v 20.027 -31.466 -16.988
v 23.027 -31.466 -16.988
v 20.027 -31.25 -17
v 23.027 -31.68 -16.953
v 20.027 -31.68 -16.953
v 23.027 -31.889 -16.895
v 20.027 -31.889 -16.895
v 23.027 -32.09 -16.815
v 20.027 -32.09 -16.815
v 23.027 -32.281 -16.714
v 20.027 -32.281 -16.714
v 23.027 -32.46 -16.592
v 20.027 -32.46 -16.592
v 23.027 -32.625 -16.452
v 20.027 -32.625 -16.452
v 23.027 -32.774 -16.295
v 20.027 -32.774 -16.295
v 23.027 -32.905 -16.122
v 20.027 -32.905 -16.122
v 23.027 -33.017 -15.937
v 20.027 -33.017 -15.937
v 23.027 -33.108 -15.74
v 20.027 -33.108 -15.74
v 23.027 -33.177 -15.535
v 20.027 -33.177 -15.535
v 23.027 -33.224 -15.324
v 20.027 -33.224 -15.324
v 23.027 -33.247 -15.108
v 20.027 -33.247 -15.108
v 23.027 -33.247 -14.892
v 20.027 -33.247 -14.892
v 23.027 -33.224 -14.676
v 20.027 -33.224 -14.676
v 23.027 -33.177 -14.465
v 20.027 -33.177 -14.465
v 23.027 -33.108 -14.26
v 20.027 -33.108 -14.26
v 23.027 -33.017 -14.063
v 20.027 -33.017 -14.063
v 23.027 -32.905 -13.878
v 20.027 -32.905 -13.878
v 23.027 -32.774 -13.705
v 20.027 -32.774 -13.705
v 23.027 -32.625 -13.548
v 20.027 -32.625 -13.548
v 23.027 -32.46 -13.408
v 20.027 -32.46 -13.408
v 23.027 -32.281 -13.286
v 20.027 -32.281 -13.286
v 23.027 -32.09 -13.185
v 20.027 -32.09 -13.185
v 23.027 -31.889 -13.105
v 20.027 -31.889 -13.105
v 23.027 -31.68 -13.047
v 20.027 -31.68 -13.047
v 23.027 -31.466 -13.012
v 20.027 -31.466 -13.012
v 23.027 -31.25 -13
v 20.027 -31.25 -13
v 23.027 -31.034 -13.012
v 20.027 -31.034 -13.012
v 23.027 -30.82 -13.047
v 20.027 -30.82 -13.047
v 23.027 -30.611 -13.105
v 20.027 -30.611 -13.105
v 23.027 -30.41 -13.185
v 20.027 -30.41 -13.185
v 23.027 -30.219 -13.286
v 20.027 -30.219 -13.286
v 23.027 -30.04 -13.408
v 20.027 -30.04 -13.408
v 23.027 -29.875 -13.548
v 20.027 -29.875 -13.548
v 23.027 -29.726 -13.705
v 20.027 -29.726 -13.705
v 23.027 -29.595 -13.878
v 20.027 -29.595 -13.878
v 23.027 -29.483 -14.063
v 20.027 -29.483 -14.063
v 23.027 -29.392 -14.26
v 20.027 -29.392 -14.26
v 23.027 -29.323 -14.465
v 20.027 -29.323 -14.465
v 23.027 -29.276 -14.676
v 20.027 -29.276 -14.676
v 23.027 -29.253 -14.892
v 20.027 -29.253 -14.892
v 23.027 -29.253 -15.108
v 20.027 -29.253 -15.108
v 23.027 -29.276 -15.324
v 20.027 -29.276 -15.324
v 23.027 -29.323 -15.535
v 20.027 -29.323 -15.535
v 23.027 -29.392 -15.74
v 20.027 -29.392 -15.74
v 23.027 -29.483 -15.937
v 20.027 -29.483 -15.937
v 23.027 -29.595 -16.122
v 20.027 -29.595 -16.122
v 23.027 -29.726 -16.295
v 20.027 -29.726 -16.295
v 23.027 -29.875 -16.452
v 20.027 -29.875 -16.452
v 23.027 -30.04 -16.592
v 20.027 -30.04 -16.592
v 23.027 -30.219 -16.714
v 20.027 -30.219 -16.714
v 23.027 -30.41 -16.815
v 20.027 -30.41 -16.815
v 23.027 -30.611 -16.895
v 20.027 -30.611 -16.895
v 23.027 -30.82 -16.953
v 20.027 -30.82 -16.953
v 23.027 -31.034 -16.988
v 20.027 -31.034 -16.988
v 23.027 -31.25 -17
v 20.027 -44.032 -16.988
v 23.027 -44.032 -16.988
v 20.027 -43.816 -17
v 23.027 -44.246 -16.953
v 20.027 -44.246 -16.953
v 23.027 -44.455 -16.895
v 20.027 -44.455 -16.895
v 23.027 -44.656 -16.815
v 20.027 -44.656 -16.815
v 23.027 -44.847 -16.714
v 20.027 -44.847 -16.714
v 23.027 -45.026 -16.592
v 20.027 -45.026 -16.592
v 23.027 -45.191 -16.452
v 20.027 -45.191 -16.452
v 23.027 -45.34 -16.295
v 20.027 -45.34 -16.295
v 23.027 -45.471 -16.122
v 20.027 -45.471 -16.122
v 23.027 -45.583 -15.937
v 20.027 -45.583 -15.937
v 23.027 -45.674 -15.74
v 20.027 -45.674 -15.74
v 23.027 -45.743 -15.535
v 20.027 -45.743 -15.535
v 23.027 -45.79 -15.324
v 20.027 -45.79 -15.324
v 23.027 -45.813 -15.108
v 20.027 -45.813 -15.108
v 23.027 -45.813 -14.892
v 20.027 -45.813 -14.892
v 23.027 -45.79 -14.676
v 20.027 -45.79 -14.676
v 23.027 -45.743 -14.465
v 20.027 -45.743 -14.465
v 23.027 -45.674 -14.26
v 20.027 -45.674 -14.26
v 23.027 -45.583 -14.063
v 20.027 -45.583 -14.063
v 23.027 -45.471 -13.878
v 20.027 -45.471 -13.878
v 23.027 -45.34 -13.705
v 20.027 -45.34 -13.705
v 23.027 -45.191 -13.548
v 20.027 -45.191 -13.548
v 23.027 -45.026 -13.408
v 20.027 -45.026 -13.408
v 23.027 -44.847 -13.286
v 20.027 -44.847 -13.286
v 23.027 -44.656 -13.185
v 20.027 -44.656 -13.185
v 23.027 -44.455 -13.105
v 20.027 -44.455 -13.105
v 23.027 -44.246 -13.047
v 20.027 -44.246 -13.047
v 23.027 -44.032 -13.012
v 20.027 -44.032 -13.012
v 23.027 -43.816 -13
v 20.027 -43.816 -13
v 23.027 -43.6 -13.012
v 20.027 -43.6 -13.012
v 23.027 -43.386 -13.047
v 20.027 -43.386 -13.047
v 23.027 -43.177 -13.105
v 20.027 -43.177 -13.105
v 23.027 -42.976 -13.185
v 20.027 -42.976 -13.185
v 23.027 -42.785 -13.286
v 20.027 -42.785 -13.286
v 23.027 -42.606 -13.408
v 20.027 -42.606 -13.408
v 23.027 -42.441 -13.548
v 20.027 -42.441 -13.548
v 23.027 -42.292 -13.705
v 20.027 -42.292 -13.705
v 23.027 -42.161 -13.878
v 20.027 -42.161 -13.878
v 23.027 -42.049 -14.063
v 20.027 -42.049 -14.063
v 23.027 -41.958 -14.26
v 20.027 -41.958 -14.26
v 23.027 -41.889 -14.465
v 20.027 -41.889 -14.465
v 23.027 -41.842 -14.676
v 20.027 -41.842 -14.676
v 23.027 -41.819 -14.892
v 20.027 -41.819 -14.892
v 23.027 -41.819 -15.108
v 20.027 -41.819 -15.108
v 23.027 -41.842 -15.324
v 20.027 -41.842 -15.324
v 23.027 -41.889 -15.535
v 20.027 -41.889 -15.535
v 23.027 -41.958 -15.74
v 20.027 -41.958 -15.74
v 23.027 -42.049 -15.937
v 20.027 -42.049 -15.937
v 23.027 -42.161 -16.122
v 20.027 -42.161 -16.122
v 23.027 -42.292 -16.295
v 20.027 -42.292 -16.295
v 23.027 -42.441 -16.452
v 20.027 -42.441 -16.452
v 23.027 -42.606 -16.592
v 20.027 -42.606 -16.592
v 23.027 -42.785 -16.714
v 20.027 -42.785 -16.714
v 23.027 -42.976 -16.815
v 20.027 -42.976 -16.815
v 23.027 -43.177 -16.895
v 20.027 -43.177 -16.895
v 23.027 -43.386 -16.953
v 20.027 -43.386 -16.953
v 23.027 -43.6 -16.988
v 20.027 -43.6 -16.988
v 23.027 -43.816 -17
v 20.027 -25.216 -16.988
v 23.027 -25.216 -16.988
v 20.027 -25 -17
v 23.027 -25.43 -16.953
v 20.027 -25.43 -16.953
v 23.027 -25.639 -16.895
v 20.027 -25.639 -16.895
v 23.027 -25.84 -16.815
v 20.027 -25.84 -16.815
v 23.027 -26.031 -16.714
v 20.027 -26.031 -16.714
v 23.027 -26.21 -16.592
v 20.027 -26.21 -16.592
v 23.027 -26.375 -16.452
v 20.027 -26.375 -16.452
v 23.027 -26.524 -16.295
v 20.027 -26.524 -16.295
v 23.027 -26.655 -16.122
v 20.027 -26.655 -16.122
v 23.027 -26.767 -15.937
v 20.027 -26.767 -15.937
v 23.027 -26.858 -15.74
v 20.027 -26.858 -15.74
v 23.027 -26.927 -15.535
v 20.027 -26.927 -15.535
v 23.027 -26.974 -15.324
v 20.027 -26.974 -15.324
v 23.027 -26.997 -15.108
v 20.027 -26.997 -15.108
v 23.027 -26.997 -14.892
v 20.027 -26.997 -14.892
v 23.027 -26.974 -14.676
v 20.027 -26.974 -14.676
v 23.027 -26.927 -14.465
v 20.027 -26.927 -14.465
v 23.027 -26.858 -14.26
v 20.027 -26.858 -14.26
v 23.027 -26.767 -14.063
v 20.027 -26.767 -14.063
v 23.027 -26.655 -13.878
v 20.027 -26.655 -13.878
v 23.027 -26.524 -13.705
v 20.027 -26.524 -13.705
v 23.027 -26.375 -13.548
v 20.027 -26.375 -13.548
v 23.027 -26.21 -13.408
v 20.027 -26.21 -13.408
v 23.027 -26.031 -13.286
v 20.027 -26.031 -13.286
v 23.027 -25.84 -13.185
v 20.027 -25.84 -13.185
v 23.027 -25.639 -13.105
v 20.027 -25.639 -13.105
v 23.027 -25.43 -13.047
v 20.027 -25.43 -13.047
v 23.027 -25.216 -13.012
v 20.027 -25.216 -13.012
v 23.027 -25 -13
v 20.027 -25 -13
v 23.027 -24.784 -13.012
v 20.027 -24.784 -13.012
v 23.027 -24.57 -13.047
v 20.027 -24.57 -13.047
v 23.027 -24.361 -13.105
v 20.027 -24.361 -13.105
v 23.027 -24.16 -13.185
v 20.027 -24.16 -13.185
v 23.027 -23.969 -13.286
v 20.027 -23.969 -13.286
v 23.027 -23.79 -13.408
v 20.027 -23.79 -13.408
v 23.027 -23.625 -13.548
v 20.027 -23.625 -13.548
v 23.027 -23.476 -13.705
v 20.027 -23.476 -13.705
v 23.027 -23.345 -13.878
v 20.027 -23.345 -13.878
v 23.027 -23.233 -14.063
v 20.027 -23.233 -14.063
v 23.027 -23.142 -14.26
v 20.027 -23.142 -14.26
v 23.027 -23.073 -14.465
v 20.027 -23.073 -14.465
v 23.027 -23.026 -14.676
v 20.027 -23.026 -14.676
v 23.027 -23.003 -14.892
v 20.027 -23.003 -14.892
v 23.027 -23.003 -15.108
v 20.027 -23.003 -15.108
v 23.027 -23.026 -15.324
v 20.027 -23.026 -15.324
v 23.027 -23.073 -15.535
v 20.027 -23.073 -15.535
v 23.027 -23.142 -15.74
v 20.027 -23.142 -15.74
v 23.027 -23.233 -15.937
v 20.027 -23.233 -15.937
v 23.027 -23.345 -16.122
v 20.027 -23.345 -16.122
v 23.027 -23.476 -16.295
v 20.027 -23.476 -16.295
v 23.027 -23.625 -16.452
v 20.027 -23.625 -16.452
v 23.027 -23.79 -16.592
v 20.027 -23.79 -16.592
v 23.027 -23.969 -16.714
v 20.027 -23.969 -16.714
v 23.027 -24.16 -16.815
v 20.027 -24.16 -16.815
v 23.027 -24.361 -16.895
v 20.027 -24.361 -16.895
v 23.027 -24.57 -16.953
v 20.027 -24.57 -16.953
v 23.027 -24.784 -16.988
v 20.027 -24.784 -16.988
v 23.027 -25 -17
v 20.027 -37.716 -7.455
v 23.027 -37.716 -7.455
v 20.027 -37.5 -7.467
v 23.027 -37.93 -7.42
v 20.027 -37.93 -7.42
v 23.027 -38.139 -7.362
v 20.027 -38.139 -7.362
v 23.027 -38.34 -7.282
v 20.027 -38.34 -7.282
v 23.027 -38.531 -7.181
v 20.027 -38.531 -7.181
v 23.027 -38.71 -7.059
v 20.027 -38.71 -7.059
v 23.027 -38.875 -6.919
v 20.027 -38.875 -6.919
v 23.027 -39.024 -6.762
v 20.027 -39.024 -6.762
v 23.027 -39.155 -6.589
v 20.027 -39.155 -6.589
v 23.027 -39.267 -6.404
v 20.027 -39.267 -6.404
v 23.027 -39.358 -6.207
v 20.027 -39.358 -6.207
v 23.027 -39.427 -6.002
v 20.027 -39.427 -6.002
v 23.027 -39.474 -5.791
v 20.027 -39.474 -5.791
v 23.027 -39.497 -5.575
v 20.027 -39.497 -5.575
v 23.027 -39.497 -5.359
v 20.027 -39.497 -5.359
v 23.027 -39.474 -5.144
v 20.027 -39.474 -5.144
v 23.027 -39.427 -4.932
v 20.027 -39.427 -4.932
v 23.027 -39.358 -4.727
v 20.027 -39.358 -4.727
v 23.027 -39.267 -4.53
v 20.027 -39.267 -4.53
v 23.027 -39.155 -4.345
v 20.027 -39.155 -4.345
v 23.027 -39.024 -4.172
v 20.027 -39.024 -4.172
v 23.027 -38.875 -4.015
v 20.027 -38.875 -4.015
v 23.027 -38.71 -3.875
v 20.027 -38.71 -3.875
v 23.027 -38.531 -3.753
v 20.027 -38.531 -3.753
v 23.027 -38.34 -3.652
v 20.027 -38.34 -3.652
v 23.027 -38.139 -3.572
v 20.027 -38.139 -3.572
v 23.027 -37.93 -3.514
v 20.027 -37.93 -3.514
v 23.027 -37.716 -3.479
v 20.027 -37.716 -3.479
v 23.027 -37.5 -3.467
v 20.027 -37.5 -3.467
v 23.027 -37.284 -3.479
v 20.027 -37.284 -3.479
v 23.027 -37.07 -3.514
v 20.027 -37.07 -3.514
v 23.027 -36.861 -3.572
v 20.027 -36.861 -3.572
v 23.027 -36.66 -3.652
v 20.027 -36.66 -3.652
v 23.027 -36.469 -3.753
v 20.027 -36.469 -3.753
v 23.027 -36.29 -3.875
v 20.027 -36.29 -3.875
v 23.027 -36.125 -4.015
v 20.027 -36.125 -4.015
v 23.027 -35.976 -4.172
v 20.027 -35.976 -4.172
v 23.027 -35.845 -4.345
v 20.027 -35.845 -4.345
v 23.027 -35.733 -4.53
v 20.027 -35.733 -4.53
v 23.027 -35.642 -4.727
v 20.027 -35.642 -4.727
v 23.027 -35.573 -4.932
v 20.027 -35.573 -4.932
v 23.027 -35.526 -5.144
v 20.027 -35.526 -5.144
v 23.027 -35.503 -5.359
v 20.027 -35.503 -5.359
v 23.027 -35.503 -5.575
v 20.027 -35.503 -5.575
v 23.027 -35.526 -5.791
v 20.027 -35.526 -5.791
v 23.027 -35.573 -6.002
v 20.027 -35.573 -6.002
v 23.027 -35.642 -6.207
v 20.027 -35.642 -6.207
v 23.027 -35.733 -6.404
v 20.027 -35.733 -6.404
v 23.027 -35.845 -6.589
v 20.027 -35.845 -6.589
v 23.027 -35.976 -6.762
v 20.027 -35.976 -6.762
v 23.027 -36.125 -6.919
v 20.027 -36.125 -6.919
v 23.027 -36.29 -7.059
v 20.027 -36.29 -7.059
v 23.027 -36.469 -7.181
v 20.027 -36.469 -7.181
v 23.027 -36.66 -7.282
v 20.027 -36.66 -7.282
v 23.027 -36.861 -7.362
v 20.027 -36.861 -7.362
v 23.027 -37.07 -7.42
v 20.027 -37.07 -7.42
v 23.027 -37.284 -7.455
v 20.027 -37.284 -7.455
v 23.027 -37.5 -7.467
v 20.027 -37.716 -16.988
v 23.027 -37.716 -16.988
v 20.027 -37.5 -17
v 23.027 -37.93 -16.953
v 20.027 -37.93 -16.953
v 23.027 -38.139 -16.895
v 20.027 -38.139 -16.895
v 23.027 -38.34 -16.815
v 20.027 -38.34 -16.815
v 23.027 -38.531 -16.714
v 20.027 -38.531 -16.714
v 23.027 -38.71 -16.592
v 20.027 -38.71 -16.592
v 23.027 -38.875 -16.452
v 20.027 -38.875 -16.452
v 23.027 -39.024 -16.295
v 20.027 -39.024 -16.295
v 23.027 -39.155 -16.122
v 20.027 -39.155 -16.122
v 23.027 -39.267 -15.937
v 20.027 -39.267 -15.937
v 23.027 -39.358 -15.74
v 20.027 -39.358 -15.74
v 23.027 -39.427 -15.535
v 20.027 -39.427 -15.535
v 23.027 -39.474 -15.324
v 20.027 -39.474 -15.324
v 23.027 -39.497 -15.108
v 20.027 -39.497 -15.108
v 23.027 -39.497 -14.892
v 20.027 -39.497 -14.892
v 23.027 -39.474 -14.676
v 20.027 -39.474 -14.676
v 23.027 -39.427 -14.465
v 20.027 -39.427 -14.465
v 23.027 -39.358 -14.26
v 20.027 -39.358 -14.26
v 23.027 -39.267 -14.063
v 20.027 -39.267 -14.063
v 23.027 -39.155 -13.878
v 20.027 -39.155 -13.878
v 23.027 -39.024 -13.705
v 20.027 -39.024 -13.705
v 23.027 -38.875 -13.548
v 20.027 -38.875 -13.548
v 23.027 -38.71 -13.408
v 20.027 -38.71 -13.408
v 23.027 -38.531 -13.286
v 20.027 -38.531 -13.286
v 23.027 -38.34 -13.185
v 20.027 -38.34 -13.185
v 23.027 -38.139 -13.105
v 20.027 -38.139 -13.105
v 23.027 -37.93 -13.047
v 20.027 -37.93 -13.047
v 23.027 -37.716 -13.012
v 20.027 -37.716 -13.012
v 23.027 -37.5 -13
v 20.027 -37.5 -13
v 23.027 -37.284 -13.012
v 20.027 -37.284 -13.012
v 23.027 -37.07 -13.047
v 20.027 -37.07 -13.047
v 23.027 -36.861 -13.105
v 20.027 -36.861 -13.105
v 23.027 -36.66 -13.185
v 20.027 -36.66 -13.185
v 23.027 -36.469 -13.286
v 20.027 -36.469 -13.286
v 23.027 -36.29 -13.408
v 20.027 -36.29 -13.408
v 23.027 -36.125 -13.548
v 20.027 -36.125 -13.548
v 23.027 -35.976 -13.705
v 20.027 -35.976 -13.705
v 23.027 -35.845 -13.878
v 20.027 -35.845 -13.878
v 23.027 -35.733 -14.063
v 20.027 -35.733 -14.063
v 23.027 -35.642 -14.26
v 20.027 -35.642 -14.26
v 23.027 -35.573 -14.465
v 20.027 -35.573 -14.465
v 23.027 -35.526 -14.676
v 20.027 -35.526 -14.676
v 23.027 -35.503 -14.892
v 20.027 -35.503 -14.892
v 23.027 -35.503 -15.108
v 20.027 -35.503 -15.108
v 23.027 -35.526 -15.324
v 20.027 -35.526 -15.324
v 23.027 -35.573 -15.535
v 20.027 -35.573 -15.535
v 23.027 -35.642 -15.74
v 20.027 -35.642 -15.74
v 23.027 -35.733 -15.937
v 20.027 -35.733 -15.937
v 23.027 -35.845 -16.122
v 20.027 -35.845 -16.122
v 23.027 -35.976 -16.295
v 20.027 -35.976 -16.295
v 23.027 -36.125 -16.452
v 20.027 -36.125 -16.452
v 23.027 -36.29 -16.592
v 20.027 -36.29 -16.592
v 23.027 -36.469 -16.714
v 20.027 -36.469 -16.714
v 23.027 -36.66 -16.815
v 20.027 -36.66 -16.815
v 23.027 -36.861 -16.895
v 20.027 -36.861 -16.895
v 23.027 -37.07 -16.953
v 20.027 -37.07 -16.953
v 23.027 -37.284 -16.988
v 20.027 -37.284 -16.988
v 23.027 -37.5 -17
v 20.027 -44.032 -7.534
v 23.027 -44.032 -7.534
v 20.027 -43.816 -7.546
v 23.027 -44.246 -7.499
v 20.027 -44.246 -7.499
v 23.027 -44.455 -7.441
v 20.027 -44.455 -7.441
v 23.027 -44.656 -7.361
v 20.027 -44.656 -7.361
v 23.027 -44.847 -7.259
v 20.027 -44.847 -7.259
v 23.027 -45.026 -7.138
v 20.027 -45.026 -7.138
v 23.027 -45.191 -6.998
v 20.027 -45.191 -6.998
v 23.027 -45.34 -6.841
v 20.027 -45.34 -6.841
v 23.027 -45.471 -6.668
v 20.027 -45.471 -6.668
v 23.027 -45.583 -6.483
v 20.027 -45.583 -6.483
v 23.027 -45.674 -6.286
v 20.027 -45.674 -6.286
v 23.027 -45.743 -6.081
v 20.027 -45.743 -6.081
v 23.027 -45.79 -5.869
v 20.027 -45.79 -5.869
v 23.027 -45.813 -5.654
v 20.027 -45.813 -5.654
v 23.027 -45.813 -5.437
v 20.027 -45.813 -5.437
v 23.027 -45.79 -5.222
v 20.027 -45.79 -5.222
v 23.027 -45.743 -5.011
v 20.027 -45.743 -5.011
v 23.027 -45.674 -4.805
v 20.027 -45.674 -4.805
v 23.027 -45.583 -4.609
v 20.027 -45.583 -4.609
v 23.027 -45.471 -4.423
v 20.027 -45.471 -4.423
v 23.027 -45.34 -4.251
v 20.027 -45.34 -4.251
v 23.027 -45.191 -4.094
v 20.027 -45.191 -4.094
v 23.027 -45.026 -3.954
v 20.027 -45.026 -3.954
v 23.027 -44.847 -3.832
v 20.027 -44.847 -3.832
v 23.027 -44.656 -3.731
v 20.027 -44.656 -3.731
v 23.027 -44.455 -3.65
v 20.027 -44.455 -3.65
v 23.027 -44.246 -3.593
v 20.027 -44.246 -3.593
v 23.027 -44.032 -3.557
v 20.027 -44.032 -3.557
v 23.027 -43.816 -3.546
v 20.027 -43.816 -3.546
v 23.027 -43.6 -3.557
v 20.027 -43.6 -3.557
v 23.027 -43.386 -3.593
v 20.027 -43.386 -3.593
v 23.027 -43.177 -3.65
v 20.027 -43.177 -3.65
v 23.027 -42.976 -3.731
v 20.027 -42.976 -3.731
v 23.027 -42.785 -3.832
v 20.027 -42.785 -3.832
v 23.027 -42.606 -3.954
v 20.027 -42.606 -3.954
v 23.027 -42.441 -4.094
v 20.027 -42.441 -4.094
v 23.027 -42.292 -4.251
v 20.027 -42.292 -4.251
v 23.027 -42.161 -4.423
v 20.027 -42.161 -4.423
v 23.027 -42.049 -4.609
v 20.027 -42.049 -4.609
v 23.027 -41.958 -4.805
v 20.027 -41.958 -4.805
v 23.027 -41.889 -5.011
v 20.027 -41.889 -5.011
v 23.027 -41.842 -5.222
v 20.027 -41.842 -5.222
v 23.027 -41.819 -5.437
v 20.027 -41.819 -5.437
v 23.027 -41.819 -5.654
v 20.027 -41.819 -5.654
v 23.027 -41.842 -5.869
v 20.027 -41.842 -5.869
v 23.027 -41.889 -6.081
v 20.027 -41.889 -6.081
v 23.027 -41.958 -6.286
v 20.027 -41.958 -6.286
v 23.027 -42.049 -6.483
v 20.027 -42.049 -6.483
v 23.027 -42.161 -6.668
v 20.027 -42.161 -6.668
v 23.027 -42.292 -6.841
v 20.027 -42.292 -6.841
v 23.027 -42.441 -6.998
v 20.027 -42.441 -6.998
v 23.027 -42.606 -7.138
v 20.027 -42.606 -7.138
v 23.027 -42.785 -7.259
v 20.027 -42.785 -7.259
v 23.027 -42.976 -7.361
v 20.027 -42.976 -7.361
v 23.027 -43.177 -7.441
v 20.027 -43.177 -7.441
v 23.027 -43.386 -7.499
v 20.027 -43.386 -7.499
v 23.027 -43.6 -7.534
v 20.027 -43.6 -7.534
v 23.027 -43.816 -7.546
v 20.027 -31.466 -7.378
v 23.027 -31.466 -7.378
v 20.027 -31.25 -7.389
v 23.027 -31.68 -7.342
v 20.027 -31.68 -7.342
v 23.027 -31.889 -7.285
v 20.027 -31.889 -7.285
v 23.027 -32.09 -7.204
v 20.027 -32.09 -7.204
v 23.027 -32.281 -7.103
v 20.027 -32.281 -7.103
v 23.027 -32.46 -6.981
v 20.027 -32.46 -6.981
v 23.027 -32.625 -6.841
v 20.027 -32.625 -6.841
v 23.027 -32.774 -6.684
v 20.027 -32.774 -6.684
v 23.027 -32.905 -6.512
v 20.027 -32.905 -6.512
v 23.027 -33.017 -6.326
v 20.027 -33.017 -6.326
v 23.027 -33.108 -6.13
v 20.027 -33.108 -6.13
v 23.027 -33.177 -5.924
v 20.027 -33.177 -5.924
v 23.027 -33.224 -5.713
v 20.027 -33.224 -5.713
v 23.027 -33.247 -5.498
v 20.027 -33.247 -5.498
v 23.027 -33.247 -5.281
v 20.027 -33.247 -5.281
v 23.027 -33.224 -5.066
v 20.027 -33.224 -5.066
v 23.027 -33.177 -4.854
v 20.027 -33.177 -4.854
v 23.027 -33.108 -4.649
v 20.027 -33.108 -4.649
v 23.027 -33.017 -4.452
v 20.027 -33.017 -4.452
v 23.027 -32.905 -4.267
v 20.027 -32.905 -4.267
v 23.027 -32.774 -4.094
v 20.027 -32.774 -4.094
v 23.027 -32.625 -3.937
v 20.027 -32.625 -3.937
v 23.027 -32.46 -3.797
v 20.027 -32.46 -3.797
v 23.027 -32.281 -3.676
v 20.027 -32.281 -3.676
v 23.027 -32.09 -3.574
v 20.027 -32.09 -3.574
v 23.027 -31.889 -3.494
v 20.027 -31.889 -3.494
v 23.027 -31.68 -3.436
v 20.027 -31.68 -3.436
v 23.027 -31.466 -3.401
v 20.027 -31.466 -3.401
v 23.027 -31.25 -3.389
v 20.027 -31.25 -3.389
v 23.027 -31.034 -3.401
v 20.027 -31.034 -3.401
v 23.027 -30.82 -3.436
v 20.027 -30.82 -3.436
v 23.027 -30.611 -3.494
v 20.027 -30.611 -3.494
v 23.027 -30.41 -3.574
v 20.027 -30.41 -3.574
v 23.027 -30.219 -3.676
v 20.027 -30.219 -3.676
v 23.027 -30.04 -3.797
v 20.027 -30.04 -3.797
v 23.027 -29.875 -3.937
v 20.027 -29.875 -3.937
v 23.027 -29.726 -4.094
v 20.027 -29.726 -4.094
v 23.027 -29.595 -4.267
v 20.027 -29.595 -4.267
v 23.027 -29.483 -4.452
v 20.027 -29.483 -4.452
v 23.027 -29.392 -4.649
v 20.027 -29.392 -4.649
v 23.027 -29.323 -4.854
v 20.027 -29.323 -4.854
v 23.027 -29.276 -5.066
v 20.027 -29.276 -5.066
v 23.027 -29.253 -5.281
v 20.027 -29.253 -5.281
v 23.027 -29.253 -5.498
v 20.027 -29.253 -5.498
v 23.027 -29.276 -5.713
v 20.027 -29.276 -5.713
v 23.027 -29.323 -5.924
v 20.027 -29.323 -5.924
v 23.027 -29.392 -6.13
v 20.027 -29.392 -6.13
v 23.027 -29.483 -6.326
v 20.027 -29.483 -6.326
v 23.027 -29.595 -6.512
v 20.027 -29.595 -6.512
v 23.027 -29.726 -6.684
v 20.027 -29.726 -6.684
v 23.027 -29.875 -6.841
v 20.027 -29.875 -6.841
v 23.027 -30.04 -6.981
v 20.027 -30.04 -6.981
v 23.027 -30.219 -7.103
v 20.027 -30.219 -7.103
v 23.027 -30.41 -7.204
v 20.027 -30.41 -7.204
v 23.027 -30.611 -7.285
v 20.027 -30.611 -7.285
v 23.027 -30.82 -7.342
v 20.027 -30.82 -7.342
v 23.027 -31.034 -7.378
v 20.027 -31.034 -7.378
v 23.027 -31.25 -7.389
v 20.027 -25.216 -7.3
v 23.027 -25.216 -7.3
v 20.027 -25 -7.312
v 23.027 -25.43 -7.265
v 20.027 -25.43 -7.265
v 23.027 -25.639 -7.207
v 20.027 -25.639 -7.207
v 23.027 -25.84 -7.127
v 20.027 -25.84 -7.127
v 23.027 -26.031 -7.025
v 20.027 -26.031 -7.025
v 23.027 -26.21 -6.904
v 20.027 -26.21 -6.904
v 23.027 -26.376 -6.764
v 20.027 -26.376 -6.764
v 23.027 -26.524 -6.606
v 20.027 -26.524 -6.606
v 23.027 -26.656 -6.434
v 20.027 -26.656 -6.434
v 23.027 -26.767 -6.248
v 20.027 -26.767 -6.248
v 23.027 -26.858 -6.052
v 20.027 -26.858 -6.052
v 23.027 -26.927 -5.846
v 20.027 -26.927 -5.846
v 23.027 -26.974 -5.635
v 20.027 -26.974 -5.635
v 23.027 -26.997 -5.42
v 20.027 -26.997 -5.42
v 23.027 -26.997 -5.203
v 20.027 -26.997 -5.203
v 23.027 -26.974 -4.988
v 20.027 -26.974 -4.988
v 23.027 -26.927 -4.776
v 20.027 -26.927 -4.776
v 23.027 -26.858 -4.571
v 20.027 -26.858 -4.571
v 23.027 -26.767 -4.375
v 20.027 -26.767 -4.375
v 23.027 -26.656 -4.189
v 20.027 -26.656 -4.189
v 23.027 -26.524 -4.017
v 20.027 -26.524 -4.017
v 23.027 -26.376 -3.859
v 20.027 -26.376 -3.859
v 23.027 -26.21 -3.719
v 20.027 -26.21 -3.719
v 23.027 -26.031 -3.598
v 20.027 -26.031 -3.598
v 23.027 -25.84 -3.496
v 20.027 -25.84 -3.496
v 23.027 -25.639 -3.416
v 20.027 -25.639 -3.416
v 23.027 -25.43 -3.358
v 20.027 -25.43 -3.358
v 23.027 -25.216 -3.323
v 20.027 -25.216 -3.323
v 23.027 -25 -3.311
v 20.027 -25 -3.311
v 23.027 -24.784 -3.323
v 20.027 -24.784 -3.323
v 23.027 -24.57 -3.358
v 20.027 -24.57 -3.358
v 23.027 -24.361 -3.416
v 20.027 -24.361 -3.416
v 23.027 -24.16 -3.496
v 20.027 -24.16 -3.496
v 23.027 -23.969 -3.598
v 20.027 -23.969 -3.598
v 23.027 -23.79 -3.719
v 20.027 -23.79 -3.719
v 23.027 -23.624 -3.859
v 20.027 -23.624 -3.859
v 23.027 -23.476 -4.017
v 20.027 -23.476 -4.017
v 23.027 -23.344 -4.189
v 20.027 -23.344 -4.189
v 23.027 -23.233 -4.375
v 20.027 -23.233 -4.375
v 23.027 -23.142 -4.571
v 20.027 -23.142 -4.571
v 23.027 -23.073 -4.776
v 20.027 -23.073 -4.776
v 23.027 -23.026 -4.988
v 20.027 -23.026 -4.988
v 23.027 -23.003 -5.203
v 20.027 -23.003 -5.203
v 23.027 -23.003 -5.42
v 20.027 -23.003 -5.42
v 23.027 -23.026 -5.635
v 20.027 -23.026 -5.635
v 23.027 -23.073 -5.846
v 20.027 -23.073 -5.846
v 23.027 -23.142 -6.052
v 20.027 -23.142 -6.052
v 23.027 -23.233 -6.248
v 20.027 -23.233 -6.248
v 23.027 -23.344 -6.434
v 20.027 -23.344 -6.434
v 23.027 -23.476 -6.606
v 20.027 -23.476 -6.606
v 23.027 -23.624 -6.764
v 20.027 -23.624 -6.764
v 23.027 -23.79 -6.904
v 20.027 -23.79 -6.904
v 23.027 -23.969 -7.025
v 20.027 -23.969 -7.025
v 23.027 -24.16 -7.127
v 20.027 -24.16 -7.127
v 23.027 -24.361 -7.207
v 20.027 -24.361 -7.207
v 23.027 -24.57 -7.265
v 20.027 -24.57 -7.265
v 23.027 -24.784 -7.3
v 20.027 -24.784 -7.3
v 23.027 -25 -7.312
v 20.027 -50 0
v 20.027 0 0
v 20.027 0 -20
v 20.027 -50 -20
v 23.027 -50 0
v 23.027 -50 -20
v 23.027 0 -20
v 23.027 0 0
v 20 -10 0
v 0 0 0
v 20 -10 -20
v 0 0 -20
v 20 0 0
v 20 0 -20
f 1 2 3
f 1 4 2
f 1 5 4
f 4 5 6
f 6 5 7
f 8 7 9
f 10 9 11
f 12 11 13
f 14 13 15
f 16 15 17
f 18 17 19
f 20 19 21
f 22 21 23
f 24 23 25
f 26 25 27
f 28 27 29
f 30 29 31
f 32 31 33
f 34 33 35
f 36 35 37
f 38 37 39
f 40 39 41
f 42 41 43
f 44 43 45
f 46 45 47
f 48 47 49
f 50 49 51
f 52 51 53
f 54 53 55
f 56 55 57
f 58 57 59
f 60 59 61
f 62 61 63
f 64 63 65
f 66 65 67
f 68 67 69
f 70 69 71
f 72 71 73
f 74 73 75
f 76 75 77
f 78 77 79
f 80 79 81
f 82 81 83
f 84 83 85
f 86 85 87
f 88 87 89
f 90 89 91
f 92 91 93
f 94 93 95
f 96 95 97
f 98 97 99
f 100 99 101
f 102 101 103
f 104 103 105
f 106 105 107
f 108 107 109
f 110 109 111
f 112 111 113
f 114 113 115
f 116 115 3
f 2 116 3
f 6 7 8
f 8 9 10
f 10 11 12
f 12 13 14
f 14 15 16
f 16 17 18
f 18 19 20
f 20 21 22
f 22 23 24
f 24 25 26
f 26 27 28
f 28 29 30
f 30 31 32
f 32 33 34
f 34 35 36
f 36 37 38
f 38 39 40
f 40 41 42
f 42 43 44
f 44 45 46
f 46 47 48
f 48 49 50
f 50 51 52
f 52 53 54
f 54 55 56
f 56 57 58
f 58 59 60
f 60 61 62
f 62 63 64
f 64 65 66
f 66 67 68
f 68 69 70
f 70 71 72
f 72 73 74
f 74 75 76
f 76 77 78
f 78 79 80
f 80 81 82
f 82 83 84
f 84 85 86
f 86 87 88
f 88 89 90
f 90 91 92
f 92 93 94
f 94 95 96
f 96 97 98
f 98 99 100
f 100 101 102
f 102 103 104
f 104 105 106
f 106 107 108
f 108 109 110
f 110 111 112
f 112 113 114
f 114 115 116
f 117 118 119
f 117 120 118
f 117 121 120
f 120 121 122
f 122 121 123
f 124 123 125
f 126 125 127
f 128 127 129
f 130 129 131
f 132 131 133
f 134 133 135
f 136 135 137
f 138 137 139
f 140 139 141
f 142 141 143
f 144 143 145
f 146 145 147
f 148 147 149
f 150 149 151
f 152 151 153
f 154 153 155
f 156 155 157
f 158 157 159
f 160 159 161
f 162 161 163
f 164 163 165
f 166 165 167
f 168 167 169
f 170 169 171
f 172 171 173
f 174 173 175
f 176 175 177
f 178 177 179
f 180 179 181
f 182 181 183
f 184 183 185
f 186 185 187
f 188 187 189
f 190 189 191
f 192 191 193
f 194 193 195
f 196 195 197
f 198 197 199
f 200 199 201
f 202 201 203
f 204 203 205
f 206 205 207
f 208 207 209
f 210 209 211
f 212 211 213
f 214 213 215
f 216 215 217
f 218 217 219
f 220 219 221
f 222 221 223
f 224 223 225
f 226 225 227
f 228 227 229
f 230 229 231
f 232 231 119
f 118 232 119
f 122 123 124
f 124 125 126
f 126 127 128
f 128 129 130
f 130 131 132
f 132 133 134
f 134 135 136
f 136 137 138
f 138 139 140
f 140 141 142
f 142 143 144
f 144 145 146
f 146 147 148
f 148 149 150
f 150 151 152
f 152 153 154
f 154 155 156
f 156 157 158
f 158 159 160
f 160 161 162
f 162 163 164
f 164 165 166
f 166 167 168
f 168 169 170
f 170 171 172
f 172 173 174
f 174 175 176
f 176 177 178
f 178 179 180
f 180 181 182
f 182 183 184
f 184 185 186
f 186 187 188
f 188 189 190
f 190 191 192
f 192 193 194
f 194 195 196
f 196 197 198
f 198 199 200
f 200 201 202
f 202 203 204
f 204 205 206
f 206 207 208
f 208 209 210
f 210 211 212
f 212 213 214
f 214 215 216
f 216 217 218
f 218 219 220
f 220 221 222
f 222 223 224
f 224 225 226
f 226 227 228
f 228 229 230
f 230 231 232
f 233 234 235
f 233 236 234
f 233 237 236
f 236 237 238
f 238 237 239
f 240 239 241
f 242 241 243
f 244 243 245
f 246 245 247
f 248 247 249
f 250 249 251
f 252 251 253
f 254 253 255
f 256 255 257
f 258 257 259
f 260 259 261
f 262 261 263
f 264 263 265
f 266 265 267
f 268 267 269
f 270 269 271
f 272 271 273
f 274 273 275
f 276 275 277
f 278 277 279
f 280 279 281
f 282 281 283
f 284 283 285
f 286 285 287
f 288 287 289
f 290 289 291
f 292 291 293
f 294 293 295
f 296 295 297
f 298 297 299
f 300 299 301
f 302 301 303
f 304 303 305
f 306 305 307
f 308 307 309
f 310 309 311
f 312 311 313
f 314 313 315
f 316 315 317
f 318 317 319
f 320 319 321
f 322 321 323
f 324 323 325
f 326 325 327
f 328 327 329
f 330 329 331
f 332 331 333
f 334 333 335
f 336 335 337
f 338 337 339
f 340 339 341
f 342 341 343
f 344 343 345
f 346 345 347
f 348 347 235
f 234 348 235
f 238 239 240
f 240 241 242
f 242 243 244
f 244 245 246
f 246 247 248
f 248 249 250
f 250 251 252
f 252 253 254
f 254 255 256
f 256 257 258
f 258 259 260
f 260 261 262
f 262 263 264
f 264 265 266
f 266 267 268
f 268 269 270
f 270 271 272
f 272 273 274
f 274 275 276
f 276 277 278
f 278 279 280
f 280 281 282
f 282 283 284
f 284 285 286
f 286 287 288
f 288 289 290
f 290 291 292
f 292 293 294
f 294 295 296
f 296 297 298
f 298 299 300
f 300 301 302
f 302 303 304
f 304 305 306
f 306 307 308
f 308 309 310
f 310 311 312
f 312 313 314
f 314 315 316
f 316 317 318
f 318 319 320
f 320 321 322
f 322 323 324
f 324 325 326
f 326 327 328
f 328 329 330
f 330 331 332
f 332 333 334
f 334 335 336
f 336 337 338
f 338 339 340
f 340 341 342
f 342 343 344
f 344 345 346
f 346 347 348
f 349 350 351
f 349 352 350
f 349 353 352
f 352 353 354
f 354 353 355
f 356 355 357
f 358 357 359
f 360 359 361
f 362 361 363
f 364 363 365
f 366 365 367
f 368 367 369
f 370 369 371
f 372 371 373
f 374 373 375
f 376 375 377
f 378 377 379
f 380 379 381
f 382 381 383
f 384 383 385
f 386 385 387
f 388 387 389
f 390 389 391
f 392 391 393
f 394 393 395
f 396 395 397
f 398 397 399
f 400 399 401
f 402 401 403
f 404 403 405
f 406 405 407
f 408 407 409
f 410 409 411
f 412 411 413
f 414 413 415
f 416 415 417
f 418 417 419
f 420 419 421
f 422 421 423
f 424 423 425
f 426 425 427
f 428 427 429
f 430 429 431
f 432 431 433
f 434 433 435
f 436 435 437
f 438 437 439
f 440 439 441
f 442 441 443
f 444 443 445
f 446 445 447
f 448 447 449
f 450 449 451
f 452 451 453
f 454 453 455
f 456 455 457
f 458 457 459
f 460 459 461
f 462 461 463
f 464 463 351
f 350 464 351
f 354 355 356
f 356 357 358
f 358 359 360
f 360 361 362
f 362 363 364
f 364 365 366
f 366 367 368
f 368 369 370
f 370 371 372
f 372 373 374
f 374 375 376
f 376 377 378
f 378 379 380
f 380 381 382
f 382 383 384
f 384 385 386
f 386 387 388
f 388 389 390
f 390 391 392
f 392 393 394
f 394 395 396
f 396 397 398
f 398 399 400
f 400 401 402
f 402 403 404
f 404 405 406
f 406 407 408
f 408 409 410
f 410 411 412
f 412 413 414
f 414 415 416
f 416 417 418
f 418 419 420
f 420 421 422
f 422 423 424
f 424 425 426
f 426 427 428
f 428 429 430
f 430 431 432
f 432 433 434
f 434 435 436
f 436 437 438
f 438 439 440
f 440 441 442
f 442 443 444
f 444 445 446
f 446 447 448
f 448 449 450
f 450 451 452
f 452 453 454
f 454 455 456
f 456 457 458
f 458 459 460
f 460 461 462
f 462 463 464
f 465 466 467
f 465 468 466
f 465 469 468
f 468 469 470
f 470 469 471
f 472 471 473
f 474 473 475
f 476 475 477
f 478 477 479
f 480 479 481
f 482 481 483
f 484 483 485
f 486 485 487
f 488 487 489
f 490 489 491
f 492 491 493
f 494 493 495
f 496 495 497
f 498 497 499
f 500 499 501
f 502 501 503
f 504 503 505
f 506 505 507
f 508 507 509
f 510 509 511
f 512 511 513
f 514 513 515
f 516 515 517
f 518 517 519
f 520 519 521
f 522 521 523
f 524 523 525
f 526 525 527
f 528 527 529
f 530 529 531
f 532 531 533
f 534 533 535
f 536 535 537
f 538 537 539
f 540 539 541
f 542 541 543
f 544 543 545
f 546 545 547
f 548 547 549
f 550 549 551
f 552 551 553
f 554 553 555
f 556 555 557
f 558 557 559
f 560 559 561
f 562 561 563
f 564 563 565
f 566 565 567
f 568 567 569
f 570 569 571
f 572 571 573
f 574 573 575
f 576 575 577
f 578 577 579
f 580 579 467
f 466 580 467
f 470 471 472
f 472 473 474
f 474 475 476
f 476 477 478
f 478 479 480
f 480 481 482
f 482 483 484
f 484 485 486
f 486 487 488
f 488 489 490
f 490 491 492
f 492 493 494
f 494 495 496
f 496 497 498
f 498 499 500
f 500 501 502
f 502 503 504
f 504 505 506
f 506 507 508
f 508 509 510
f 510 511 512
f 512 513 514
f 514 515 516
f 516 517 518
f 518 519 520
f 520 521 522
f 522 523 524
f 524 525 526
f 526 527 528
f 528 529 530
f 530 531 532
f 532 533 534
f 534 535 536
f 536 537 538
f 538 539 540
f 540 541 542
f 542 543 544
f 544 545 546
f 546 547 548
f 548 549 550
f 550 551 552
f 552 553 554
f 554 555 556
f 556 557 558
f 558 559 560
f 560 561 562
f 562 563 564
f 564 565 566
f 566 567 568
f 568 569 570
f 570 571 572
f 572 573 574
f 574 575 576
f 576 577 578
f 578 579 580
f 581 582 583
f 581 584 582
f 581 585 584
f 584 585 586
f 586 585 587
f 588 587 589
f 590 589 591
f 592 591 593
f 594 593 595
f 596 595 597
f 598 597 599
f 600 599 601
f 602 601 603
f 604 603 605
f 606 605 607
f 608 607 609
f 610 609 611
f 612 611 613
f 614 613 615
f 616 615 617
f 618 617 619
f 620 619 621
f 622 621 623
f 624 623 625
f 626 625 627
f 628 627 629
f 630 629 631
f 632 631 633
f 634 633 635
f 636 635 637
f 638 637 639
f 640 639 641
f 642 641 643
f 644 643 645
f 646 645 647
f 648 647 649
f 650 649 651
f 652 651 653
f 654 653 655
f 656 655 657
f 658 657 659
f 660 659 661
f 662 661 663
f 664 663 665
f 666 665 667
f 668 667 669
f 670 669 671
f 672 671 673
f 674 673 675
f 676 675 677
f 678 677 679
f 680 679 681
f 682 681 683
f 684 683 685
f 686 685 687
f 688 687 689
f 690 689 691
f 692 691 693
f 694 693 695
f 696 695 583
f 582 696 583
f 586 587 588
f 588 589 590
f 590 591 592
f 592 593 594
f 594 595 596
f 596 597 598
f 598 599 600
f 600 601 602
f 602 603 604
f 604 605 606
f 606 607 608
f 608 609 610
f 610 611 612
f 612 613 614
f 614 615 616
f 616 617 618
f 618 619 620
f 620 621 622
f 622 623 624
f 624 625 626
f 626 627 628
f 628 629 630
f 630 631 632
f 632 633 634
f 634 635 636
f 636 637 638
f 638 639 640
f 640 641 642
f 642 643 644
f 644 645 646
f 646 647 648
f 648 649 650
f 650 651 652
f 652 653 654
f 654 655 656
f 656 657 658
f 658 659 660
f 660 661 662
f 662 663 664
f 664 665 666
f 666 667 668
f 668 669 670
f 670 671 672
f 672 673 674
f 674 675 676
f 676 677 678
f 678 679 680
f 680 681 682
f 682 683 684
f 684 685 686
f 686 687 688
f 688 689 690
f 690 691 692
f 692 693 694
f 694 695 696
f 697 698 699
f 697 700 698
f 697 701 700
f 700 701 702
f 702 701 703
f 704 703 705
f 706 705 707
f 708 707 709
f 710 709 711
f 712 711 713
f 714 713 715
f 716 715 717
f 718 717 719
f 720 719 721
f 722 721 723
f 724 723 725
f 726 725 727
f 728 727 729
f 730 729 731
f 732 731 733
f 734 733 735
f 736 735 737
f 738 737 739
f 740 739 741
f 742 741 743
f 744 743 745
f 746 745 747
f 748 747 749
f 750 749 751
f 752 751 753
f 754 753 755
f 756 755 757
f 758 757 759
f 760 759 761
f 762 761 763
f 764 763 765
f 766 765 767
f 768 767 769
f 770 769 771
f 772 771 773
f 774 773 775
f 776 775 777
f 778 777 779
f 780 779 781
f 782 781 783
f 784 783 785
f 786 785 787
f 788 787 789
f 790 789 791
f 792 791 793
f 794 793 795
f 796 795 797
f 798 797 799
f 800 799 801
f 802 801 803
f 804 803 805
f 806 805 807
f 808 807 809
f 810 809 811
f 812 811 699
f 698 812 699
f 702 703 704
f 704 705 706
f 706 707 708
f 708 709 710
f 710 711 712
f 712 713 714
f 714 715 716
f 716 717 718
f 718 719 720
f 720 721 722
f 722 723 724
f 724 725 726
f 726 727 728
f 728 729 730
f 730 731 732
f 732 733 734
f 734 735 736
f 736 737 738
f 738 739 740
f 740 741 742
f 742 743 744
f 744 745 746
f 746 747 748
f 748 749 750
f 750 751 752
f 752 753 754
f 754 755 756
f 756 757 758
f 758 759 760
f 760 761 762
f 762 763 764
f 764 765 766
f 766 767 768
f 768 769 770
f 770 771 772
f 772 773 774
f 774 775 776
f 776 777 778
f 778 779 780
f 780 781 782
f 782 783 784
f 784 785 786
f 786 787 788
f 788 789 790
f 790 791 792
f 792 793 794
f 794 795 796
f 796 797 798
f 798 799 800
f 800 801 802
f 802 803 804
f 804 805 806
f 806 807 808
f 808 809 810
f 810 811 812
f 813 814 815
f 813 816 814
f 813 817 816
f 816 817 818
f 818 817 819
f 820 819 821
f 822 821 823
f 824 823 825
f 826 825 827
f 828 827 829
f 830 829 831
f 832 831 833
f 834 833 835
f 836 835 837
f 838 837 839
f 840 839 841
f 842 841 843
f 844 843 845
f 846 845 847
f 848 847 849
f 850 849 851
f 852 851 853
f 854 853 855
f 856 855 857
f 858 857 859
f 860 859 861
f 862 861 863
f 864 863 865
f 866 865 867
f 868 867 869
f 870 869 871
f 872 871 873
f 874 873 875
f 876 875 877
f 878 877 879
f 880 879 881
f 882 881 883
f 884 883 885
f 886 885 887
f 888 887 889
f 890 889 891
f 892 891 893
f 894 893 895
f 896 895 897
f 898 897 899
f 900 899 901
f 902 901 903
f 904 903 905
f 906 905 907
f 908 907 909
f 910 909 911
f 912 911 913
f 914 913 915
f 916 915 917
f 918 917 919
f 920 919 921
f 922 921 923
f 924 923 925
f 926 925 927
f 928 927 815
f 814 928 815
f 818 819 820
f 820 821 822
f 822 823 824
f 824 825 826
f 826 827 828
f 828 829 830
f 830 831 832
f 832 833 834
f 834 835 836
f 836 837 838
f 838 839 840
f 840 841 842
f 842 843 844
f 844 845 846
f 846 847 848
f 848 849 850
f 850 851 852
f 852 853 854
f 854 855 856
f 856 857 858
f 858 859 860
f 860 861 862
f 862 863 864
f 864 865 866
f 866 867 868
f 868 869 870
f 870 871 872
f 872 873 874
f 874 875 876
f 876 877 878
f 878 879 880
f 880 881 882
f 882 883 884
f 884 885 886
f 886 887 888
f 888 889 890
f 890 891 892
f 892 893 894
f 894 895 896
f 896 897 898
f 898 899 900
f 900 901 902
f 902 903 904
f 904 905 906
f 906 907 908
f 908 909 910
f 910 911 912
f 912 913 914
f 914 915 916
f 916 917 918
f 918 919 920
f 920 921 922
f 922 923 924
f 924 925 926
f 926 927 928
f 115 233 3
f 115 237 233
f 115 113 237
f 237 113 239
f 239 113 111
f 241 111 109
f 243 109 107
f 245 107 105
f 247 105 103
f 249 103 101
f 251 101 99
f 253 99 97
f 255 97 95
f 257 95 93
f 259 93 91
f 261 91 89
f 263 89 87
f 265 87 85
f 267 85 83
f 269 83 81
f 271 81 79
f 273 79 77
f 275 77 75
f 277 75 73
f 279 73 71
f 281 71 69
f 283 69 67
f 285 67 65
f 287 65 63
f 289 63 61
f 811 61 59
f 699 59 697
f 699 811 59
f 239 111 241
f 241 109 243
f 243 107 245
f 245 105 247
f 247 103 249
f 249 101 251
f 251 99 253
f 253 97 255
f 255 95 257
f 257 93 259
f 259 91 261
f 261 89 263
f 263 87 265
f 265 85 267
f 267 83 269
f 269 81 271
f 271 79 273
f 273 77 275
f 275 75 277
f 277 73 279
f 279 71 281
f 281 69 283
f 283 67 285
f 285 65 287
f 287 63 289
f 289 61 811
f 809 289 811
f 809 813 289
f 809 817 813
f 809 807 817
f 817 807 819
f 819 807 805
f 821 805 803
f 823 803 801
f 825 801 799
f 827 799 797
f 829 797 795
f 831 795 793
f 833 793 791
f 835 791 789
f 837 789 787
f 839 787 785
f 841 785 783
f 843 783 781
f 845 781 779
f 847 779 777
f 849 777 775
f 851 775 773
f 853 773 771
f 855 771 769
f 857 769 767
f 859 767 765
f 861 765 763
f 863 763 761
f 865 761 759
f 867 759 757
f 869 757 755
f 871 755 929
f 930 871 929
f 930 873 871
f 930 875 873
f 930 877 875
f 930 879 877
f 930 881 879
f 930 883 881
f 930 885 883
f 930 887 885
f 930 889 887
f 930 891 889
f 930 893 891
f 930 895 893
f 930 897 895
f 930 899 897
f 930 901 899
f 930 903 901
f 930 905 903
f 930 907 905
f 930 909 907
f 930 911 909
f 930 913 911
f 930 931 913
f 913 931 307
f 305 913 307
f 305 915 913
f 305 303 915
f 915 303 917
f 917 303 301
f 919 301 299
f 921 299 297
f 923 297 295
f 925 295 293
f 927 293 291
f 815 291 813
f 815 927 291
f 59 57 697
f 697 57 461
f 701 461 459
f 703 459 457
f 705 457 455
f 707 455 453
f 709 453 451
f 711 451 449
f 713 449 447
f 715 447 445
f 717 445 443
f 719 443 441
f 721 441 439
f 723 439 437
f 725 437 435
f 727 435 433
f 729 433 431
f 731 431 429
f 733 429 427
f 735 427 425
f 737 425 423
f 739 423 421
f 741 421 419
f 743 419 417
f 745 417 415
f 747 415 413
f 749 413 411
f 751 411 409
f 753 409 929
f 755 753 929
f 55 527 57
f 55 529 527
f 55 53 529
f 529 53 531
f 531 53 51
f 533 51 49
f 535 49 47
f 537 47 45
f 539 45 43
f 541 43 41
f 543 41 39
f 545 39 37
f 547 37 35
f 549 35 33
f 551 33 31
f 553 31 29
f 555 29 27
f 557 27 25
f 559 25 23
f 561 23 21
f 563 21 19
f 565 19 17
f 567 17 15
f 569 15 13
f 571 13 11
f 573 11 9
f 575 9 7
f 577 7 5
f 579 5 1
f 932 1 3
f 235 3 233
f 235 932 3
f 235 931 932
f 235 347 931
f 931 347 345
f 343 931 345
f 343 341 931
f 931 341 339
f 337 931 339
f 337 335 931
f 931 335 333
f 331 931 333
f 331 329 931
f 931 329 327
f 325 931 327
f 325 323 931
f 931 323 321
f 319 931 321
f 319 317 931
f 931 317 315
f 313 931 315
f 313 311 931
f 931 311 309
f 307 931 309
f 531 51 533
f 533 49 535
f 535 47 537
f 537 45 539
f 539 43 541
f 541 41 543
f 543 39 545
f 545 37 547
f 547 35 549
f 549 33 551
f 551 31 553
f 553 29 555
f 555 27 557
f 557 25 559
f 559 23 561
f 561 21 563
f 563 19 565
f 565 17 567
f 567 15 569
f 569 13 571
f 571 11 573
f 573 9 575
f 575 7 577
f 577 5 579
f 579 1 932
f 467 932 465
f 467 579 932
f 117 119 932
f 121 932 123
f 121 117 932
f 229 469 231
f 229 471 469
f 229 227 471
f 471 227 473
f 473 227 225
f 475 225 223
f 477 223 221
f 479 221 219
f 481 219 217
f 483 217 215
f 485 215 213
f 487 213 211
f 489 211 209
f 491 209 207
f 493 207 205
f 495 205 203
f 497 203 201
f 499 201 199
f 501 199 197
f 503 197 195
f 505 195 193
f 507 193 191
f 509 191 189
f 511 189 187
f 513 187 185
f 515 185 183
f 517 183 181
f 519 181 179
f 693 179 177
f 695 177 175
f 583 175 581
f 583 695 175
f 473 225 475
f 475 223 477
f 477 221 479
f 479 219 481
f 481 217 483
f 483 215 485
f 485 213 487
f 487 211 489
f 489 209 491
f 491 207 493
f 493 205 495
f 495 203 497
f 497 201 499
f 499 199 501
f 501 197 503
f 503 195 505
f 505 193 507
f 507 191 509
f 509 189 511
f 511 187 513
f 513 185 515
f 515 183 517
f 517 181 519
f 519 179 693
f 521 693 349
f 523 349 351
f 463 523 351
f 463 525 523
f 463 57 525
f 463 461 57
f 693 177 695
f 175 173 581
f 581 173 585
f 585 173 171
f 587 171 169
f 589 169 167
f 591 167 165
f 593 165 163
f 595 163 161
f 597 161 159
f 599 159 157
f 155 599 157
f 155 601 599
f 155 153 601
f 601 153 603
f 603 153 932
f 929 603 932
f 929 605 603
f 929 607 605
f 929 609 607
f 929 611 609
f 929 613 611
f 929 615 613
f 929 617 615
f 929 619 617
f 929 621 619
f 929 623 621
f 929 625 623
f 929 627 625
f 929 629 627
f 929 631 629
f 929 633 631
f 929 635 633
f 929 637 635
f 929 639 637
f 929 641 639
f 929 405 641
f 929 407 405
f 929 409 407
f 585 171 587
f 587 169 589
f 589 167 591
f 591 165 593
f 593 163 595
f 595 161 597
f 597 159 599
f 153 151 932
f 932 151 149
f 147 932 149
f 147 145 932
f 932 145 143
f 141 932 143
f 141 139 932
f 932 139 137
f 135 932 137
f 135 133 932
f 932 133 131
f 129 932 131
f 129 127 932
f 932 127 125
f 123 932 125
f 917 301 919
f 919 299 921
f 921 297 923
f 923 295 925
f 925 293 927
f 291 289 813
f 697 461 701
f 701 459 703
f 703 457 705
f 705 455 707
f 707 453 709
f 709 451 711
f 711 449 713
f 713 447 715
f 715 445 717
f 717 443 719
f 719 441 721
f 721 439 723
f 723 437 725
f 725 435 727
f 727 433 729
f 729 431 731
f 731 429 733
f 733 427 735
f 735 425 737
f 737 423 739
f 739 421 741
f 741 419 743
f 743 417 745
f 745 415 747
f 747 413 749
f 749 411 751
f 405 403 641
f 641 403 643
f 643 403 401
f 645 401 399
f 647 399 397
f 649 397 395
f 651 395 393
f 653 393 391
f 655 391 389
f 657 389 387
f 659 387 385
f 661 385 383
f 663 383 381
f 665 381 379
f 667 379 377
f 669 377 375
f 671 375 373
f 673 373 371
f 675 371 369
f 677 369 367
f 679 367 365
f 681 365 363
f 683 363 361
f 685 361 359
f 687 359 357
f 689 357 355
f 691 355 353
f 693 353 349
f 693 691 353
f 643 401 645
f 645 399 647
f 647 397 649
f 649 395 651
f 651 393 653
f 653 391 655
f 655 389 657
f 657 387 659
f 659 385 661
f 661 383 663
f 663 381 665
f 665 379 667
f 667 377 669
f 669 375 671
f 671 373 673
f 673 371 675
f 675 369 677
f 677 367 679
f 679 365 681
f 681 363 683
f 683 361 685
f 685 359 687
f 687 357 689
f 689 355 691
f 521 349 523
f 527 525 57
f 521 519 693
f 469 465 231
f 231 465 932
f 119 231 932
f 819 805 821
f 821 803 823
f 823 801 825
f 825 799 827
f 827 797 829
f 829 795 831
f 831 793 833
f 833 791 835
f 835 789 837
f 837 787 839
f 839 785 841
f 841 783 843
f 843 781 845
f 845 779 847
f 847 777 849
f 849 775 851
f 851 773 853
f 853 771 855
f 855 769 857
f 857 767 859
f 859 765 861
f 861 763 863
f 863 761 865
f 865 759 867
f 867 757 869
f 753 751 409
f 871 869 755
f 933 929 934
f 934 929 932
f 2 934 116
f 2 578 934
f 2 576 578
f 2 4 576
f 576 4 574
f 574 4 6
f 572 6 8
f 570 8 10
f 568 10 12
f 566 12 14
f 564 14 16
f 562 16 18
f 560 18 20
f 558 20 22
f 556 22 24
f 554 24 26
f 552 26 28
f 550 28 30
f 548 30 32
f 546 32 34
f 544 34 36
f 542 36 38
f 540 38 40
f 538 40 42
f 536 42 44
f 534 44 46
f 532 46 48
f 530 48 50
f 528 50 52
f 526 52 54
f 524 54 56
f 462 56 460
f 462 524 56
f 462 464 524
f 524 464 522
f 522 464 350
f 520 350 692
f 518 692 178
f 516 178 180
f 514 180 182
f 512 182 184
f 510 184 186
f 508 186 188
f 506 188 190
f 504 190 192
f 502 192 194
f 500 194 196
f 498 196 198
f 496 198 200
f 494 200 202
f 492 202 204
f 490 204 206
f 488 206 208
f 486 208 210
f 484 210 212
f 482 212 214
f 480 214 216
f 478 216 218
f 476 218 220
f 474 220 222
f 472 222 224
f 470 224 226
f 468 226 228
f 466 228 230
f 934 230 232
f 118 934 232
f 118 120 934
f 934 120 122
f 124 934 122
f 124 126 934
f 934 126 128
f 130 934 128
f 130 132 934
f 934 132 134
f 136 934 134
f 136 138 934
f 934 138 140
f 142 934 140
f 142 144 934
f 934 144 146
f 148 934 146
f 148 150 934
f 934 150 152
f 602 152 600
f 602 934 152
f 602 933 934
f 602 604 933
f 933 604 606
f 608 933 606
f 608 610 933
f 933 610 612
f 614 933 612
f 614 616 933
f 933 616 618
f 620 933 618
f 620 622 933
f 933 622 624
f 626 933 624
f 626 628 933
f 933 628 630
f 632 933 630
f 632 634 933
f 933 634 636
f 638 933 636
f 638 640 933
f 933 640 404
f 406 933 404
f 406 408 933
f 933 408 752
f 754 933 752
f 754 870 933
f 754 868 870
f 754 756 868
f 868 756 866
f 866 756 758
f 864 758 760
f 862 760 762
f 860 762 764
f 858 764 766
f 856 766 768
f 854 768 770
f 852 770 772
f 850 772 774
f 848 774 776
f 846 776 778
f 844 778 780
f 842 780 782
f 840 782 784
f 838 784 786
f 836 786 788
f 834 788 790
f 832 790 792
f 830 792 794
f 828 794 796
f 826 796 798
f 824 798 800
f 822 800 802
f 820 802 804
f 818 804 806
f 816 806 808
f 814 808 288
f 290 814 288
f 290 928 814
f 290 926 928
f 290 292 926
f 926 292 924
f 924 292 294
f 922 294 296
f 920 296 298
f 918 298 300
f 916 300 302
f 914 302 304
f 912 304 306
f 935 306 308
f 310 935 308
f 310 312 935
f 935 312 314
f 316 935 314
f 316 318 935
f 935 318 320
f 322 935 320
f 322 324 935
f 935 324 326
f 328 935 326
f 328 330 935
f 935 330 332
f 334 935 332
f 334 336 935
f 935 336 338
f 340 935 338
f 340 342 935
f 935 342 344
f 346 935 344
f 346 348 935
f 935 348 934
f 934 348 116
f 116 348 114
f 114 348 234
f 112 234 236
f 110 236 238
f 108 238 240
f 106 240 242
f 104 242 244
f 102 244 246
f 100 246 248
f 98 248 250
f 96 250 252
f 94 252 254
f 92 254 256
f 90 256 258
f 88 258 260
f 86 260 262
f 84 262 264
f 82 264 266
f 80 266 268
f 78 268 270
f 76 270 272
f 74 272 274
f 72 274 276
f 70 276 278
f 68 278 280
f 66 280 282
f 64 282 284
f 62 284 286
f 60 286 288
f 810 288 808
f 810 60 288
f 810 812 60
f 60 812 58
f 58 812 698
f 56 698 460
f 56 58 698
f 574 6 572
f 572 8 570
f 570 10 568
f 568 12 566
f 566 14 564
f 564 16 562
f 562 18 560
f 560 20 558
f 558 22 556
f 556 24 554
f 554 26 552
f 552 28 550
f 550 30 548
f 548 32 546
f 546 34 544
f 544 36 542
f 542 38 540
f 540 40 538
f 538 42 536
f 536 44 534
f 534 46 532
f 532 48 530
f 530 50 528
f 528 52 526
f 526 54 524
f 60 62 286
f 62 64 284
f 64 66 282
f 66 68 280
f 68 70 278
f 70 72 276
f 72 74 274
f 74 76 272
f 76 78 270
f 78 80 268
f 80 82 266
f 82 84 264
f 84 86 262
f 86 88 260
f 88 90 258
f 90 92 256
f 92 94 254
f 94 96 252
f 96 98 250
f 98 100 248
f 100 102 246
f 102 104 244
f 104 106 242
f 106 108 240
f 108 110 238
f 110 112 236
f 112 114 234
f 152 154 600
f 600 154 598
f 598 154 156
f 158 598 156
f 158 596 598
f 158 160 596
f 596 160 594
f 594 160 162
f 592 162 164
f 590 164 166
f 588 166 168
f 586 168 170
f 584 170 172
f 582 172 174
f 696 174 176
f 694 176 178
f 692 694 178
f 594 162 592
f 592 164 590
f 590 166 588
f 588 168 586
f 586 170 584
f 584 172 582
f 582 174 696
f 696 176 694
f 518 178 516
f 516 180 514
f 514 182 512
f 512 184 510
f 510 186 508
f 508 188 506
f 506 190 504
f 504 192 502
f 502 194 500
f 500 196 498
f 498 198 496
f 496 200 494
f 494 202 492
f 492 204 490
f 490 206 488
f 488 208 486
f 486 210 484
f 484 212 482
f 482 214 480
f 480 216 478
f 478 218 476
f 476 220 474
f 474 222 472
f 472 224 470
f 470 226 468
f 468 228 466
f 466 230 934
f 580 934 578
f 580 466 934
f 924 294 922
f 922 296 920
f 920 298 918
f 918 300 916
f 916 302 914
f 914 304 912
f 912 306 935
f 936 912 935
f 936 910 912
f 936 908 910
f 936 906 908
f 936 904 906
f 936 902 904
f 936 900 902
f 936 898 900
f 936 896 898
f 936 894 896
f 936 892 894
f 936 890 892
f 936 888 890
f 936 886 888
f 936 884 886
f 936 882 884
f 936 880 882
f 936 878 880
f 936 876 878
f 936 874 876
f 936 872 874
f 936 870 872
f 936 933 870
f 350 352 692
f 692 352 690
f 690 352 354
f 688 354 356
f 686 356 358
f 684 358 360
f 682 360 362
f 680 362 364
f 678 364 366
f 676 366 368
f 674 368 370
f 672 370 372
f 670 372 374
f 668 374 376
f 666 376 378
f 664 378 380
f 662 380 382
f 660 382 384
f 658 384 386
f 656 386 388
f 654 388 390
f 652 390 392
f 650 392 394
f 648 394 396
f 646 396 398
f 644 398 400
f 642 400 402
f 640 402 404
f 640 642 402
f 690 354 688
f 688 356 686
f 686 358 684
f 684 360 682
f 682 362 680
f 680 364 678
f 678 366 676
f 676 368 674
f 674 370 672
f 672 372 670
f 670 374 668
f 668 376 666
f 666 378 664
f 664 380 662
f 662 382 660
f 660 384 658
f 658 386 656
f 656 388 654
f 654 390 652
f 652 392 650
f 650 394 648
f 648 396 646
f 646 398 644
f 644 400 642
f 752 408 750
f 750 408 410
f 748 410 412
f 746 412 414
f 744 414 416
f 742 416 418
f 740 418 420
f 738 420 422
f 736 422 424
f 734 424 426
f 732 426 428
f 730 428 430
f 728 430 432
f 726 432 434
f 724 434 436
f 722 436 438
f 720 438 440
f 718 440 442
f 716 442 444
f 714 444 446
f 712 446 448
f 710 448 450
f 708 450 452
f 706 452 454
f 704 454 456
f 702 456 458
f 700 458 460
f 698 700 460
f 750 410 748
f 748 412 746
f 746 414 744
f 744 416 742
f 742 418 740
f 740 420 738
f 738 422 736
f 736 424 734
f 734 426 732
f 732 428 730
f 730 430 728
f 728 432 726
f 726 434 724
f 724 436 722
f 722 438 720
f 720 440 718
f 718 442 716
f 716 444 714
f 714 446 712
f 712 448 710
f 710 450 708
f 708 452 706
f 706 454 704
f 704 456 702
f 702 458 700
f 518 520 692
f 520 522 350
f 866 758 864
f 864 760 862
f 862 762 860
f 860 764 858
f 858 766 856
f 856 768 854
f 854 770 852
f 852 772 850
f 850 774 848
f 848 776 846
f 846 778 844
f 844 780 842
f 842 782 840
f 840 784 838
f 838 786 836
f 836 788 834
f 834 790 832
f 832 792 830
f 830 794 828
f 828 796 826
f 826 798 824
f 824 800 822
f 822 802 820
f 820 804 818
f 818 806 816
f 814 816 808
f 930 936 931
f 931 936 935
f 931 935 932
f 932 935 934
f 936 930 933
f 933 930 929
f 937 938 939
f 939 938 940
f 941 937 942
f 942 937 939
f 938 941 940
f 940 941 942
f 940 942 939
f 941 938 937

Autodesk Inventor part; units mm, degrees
ref_plane "YZ Plane" through (0, 0, 0) normal (1, 0, 0) x (0, 1, 0)
ref_plane "XZ Plane" through (0, 0, 0) normal (0, 1, 0) x (-1, 0, 0)
ref_plane "XY Plane" through (0, 0, 0) normal (0, 0, 1) x (1, 0, 0)
sketch "Эскиз5" plane through (0, 0, 0) normal (0, 0, 1) x (1, 0, 0)
  line L0 (0, 0) -> (20, 0)
  line L1 (20, 0) -> (20, -10)
  line L2 (20, -10) -> (0, 0)
  dimension "d14" = 20
  dimension "d15" = 10
extrude "Выдавливание5" add sketch "Эскиз5" against normal blind 20
sketch "Эскиз6" plane through (0, 0, 0) normal (0, 0, 1) x (1, 0, 0)
  line L0 (20.0268, 0) -> (23.0268, 0)
  line L1 (23.0268, 0) -> (23.0268, -50)
  line L2 (23.0268, -50) -> (20.0268, -50)
  line L3 (20.0268, -50) -> (20.0268, 0)
  point P0 (0, 0)
  dimension "d18" = 3
  dimension "d19" = 50
extrude "Выдавливание6" add sketch "Эскиз6" against normal blind 20
sketch "Эскиз7" plane through (23.0268, -50, 0) normal (1, 0, 0) x (0, 0, -1)
  line L0 (0, 50) -> (0, 0) projected
  line L1 (0, 0) -> (20, 0) projected
  line L2 (20, 50) -> (20, 0) projected
  line L3 (0, 50) -> (20, 50) projected
  line L4 (10, 50) -> (10.622, 0) construction
  line L5 (20, 50) -> (20, 0) construction
  line L6 (20, 25) -> (0, 25) construction
  line L7 (20, 25) -> (20, 0) construction
  line L8 (20, 12.5) -> (0, 12.5) construction
  line L9 (0, -0.1321) -> (0, 25) construction
  line L10 (0, 50) -> (0, 25) construction
  line L11 (0, 25) -> (0, 50) construction
  line L12 (0, 50) -> (0, 25) construction
  line L13 (0, 37.5) -> (20, 37.5) construction
  line L14 (0, 50) -> (10, 50) construction
  line L15 (20, 50) -> (10, 50) construction
  line L16 (0, 50) -> (10, 50) construction
  line L17 (5, 50) -> (5.6228, 0) construction
  line L18 (20, 50) -> (10, 50) construction
  line L19 (15, 50) -> (15, 0) construction
  circle A0 centre (5.4671, 12.5) radius 2
  circle A1 centre (15, 12.5) radius 2
  circle A2 centre (15, 25) radius 2
  circle A3 centre (5.3114, 25) radius 2.0002
  line L20 (0, 12.5) -> (0, 0) construction
  line L21 (0, 50) -> (0, 0) construction
  line L22 (0, -0.1321) -> (0, 12.5) construction
  line L23 (0, 6.1839) -> (20, 6.1839) construction
  circle A4 centre (5.5458, 6.1839) radius 2
  circle A5 centre (15, 6.1839) radius 2
  line L24 (0, 25) -> (0, 12.5)
  line L25 (0, 18.75) -> (20, 18.75) construction
  circle A6 centre (5.3892, 18.75) radius 2
  circle A7 centre (15, 18.75) radius 2
  line L26 (0, 37.5) -> (0, 25)
  line L27 (0, 31.25) -> (20, 31.25) construction
  dimension "d22" = 4
  dimension "d23" = 4
  dimension "d27" = 4
  dimension "d28" = 4
  dimension "d29" = 4
extrude "Выдавливание7" cut sketch "Эскиз7" against normal blind 20 contours A0 | A1 | A2 | A3 | A4 | A5 | A6 | A7
properties part number "Mount for camera"
